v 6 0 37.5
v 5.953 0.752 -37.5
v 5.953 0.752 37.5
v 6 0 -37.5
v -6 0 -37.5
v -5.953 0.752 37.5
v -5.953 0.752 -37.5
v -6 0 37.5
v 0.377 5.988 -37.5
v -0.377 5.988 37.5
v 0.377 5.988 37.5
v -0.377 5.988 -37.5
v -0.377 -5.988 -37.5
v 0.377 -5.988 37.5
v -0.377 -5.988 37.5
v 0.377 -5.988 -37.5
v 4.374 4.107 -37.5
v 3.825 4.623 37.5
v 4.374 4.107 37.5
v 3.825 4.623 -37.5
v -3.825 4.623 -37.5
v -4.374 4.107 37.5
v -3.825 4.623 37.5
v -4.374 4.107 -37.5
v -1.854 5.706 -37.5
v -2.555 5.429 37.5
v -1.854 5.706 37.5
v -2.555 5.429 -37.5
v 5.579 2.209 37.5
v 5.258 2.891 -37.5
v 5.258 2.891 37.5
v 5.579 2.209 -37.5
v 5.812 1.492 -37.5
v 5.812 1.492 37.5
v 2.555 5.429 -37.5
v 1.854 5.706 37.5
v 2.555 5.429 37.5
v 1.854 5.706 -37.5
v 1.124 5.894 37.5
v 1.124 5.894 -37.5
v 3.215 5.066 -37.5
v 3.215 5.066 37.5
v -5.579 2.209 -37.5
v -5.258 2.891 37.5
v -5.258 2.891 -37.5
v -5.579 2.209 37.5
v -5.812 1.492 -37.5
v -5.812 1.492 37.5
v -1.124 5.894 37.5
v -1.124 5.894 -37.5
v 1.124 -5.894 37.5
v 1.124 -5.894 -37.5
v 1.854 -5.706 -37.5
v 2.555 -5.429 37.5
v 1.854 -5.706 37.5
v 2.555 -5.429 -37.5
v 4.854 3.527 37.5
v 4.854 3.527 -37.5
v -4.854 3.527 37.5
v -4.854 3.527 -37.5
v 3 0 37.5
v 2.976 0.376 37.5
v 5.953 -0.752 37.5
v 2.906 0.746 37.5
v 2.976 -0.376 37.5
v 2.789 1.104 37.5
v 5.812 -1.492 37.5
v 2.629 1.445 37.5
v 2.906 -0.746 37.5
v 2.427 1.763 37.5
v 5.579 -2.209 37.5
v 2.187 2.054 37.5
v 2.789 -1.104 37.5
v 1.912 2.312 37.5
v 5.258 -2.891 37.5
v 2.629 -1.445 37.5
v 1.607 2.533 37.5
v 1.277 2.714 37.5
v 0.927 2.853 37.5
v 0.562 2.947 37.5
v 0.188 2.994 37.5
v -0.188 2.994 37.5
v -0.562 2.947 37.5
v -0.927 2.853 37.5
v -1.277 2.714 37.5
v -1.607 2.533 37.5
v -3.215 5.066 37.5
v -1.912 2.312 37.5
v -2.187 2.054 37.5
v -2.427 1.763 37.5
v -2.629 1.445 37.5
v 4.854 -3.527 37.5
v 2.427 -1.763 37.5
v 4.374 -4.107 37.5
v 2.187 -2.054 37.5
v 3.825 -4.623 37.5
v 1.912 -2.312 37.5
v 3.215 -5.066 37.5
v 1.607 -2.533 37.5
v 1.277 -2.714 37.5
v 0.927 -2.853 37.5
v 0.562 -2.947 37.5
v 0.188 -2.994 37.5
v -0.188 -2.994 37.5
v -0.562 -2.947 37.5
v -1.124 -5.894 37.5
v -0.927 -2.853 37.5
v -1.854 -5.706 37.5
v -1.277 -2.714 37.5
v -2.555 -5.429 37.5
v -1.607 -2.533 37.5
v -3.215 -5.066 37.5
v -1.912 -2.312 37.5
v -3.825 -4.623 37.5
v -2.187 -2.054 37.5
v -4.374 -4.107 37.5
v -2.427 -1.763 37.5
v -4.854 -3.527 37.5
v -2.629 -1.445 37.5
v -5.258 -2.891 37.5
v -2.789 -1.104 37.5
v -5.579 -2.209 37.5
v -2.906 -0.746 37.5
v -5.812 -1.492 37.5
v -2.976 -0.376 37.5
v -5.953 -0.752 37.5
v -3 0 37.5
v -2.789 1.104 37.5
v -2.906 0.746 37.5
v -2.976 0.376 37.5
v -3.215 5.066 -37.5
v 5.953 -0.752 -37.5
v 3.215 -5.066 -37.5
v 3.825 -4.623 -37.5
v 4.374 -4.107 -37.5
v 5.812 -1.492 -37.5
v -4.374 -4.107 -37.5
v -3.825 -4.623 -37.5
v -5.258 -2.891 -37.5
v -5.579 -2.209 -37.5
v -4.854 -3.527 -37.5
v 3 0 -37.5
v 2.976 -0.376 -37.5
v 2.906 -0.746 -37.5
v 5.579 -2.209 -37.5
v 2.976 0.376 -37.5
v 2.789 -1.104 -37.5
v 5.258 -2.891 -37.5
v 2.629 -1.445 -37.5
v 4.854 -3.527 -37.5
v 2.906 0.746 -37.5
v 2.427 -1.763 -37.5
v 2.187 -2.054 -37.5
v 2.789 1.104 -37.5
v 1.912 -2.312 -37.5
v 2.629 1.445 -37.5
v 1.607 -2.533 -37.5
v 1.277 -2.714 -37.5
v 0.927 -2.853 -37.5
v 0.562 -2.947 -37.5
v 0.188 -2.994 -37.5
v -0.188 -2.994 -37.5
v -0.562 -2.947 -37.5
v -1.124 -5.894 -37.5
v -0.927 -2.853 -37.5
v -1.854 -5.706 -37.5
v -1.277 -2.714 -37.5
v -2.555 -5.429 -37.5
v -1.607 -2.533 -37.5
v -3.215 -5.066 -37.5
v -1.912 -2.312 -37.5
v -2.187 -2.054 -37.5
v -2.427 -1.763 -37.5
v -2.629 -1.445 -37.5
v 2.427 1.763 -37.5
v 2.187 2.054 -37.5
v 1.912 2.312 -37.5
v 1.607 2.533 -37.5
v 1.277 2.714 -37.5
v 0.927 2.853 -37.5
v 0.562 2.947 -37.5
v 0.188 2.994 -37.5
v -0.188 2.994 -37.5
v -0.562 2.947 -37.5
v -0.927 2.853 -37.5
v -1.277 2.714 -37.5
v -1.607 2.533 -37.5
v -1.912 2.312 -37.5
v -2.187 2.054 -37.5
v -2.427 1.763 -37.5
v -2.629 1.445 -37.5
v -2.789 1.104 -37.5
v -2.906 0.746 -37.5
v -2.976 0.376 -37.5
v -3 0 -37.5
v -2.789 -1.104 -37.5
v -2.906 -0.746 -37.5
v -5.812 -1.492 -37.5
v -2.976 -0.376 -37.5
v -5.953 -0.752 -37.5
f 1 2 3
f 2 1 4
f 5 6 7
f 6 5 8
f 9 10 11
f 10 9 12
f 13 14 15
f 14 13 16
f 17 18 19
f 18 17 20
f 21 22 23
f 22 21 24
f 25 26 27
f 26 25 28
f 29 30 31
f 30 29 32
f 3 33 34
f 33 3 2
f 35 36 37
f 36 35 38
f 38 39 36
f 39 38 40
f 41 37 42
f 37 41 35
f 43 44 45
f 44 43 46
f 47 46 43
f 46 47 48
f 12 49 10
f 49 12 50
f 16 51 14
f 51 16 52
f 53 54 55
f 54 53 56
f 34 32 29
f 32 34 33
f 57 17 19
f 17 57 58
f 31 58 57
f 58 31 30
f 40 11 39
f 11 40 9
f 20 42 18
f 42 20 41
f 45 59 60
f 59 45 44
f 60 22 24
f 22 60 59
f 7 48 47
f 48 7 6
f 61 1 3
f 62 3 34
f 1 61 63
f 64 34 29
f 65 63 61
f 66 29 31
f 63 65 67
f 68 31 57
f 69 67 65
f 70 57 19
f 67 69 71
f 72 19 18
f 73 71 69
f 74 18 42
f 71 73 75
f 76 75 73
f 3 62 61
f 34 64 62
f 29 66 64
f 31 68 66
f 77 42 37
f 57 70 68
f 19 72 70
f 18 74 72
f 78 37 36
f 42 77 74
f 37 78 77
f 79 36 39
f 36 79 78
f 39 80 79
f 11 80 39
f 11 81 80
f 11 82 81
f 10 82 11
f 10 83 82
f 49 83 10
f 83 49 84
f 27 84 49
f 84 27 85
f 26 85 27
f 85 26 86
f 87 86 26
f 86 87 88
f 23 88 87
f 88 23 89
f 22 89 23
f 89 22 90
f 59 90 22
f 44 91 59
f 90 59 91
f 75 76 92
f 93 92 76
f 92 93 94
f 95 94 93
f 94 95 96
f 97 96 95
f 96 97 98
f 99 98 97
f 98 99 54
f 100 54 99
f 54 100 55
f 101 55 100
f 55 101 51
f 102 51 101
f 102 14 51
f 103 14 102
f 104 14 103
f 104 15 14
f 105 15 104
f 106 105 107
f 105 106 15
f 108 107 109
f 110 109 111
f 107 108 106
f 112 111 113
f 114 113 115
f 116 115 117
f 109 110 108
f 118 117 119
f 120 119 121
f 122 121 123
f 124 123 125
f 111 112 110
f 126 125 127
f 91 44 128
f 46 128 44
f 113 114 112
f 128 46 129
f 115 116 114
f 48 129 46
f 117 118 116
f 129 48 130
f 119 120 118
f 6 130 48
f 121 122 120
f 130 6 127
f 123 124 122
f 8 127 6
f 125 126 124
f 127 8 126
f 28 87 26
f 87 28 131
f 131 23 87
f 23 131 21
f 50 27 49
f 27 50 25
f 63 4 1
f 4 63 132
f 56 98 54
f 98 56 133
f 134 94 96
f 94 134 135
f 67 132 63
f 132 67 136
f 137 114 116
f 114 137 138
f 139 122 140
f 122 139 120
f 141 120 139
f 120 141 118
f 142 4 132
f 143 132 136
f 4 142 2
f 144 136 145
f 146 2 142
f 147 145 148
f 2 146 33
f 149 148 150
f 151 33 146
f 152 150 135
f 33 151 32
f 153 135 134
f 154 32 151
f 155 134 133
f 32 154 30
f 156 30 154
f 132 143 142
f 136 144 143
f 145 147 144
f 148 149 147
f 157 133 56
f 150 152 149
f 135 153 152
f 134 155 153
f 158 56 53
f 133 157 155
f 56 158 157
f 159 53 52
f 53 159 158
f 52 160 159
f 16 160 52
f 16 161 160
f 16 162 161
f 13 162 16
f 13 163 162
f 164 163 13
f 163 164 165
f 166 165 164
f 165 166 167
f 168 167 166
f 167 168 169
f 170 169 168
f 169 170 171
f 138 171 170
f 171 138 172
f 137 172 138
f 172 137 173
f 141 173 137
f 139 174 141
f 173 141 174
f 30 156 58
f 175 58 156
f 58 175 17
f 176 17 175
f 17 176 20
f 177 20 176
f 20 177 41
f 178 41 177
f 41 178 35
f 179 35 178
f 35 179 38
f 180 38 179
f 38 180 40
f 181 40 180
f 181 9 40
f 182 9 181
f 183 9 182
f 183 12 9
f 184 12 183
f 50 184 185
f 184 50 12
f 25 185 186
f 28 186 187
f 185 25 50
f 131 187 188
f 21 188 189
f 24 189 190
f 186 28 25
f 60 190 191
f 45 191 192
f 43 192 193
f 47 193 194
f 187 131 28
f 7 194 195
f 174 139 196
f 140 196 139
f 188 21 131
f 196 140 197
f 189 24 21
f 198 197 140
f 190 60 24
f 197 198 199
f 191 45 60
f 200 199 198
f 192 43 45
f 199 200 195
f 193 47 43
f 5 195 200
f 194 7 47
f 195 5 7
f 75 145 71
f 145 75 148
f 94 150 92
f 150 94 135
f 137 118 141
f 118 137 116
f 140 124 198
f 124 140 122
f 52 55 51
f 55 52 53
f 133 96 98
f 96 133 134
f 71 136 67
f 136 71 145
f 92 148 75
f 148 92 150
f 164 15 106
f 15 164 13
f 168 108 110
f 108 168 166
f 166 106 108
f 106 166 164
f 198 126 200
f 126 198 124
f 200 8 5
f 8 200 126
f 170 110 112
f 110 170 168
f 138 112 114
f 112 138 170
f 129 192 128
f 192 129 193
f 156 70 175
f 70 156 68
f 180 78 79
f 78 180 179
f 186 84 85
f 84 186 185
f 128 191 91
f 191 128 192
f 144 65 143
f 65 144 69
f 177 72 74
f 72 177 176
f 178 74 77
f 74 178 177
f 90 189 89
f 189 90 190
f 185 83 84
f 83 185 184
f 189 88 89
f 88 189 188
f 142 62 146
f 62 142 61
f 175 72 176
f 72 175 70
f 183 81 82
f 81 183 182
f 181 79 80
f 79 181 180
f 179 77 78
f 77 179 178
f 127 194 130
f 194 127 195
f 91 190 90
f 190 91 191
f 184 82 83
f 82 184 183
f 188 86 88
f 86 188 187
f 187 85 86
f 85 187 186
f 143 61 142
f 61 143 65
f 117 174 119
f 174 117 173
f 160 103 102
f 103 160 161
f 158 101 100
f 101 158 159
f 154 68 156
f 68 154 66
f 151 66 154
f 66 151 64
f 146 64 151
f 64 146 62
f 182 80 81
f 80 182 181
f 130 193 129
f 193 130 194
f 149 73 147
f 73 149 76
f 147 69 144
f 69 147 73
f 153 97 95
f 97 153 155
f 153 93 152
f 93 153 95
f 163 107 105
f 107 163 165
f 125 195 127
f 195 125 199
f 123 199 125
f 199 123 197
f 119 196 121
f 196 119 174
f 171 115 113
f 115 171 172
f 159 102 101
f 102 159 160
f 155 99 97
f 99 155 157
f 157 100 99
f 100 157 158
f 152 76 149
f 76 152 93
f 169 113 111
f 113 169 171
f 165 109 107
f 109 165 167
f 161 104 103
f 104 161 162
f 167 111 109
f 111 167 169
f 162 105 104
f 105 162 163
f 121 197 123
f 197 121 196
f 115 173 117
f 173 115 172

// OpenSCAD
$fn = 50;


difference() {
	union() {
		translate(v = [0, 0, -37.5000000000]) {
			cylinder(h = 75, r = 6.0000000000);
		}
	}
	union() {
		translate(v = [0, 0, -100.0000000000]) {
			cylinder(h = 200, r = 3);
		}
	}
}
